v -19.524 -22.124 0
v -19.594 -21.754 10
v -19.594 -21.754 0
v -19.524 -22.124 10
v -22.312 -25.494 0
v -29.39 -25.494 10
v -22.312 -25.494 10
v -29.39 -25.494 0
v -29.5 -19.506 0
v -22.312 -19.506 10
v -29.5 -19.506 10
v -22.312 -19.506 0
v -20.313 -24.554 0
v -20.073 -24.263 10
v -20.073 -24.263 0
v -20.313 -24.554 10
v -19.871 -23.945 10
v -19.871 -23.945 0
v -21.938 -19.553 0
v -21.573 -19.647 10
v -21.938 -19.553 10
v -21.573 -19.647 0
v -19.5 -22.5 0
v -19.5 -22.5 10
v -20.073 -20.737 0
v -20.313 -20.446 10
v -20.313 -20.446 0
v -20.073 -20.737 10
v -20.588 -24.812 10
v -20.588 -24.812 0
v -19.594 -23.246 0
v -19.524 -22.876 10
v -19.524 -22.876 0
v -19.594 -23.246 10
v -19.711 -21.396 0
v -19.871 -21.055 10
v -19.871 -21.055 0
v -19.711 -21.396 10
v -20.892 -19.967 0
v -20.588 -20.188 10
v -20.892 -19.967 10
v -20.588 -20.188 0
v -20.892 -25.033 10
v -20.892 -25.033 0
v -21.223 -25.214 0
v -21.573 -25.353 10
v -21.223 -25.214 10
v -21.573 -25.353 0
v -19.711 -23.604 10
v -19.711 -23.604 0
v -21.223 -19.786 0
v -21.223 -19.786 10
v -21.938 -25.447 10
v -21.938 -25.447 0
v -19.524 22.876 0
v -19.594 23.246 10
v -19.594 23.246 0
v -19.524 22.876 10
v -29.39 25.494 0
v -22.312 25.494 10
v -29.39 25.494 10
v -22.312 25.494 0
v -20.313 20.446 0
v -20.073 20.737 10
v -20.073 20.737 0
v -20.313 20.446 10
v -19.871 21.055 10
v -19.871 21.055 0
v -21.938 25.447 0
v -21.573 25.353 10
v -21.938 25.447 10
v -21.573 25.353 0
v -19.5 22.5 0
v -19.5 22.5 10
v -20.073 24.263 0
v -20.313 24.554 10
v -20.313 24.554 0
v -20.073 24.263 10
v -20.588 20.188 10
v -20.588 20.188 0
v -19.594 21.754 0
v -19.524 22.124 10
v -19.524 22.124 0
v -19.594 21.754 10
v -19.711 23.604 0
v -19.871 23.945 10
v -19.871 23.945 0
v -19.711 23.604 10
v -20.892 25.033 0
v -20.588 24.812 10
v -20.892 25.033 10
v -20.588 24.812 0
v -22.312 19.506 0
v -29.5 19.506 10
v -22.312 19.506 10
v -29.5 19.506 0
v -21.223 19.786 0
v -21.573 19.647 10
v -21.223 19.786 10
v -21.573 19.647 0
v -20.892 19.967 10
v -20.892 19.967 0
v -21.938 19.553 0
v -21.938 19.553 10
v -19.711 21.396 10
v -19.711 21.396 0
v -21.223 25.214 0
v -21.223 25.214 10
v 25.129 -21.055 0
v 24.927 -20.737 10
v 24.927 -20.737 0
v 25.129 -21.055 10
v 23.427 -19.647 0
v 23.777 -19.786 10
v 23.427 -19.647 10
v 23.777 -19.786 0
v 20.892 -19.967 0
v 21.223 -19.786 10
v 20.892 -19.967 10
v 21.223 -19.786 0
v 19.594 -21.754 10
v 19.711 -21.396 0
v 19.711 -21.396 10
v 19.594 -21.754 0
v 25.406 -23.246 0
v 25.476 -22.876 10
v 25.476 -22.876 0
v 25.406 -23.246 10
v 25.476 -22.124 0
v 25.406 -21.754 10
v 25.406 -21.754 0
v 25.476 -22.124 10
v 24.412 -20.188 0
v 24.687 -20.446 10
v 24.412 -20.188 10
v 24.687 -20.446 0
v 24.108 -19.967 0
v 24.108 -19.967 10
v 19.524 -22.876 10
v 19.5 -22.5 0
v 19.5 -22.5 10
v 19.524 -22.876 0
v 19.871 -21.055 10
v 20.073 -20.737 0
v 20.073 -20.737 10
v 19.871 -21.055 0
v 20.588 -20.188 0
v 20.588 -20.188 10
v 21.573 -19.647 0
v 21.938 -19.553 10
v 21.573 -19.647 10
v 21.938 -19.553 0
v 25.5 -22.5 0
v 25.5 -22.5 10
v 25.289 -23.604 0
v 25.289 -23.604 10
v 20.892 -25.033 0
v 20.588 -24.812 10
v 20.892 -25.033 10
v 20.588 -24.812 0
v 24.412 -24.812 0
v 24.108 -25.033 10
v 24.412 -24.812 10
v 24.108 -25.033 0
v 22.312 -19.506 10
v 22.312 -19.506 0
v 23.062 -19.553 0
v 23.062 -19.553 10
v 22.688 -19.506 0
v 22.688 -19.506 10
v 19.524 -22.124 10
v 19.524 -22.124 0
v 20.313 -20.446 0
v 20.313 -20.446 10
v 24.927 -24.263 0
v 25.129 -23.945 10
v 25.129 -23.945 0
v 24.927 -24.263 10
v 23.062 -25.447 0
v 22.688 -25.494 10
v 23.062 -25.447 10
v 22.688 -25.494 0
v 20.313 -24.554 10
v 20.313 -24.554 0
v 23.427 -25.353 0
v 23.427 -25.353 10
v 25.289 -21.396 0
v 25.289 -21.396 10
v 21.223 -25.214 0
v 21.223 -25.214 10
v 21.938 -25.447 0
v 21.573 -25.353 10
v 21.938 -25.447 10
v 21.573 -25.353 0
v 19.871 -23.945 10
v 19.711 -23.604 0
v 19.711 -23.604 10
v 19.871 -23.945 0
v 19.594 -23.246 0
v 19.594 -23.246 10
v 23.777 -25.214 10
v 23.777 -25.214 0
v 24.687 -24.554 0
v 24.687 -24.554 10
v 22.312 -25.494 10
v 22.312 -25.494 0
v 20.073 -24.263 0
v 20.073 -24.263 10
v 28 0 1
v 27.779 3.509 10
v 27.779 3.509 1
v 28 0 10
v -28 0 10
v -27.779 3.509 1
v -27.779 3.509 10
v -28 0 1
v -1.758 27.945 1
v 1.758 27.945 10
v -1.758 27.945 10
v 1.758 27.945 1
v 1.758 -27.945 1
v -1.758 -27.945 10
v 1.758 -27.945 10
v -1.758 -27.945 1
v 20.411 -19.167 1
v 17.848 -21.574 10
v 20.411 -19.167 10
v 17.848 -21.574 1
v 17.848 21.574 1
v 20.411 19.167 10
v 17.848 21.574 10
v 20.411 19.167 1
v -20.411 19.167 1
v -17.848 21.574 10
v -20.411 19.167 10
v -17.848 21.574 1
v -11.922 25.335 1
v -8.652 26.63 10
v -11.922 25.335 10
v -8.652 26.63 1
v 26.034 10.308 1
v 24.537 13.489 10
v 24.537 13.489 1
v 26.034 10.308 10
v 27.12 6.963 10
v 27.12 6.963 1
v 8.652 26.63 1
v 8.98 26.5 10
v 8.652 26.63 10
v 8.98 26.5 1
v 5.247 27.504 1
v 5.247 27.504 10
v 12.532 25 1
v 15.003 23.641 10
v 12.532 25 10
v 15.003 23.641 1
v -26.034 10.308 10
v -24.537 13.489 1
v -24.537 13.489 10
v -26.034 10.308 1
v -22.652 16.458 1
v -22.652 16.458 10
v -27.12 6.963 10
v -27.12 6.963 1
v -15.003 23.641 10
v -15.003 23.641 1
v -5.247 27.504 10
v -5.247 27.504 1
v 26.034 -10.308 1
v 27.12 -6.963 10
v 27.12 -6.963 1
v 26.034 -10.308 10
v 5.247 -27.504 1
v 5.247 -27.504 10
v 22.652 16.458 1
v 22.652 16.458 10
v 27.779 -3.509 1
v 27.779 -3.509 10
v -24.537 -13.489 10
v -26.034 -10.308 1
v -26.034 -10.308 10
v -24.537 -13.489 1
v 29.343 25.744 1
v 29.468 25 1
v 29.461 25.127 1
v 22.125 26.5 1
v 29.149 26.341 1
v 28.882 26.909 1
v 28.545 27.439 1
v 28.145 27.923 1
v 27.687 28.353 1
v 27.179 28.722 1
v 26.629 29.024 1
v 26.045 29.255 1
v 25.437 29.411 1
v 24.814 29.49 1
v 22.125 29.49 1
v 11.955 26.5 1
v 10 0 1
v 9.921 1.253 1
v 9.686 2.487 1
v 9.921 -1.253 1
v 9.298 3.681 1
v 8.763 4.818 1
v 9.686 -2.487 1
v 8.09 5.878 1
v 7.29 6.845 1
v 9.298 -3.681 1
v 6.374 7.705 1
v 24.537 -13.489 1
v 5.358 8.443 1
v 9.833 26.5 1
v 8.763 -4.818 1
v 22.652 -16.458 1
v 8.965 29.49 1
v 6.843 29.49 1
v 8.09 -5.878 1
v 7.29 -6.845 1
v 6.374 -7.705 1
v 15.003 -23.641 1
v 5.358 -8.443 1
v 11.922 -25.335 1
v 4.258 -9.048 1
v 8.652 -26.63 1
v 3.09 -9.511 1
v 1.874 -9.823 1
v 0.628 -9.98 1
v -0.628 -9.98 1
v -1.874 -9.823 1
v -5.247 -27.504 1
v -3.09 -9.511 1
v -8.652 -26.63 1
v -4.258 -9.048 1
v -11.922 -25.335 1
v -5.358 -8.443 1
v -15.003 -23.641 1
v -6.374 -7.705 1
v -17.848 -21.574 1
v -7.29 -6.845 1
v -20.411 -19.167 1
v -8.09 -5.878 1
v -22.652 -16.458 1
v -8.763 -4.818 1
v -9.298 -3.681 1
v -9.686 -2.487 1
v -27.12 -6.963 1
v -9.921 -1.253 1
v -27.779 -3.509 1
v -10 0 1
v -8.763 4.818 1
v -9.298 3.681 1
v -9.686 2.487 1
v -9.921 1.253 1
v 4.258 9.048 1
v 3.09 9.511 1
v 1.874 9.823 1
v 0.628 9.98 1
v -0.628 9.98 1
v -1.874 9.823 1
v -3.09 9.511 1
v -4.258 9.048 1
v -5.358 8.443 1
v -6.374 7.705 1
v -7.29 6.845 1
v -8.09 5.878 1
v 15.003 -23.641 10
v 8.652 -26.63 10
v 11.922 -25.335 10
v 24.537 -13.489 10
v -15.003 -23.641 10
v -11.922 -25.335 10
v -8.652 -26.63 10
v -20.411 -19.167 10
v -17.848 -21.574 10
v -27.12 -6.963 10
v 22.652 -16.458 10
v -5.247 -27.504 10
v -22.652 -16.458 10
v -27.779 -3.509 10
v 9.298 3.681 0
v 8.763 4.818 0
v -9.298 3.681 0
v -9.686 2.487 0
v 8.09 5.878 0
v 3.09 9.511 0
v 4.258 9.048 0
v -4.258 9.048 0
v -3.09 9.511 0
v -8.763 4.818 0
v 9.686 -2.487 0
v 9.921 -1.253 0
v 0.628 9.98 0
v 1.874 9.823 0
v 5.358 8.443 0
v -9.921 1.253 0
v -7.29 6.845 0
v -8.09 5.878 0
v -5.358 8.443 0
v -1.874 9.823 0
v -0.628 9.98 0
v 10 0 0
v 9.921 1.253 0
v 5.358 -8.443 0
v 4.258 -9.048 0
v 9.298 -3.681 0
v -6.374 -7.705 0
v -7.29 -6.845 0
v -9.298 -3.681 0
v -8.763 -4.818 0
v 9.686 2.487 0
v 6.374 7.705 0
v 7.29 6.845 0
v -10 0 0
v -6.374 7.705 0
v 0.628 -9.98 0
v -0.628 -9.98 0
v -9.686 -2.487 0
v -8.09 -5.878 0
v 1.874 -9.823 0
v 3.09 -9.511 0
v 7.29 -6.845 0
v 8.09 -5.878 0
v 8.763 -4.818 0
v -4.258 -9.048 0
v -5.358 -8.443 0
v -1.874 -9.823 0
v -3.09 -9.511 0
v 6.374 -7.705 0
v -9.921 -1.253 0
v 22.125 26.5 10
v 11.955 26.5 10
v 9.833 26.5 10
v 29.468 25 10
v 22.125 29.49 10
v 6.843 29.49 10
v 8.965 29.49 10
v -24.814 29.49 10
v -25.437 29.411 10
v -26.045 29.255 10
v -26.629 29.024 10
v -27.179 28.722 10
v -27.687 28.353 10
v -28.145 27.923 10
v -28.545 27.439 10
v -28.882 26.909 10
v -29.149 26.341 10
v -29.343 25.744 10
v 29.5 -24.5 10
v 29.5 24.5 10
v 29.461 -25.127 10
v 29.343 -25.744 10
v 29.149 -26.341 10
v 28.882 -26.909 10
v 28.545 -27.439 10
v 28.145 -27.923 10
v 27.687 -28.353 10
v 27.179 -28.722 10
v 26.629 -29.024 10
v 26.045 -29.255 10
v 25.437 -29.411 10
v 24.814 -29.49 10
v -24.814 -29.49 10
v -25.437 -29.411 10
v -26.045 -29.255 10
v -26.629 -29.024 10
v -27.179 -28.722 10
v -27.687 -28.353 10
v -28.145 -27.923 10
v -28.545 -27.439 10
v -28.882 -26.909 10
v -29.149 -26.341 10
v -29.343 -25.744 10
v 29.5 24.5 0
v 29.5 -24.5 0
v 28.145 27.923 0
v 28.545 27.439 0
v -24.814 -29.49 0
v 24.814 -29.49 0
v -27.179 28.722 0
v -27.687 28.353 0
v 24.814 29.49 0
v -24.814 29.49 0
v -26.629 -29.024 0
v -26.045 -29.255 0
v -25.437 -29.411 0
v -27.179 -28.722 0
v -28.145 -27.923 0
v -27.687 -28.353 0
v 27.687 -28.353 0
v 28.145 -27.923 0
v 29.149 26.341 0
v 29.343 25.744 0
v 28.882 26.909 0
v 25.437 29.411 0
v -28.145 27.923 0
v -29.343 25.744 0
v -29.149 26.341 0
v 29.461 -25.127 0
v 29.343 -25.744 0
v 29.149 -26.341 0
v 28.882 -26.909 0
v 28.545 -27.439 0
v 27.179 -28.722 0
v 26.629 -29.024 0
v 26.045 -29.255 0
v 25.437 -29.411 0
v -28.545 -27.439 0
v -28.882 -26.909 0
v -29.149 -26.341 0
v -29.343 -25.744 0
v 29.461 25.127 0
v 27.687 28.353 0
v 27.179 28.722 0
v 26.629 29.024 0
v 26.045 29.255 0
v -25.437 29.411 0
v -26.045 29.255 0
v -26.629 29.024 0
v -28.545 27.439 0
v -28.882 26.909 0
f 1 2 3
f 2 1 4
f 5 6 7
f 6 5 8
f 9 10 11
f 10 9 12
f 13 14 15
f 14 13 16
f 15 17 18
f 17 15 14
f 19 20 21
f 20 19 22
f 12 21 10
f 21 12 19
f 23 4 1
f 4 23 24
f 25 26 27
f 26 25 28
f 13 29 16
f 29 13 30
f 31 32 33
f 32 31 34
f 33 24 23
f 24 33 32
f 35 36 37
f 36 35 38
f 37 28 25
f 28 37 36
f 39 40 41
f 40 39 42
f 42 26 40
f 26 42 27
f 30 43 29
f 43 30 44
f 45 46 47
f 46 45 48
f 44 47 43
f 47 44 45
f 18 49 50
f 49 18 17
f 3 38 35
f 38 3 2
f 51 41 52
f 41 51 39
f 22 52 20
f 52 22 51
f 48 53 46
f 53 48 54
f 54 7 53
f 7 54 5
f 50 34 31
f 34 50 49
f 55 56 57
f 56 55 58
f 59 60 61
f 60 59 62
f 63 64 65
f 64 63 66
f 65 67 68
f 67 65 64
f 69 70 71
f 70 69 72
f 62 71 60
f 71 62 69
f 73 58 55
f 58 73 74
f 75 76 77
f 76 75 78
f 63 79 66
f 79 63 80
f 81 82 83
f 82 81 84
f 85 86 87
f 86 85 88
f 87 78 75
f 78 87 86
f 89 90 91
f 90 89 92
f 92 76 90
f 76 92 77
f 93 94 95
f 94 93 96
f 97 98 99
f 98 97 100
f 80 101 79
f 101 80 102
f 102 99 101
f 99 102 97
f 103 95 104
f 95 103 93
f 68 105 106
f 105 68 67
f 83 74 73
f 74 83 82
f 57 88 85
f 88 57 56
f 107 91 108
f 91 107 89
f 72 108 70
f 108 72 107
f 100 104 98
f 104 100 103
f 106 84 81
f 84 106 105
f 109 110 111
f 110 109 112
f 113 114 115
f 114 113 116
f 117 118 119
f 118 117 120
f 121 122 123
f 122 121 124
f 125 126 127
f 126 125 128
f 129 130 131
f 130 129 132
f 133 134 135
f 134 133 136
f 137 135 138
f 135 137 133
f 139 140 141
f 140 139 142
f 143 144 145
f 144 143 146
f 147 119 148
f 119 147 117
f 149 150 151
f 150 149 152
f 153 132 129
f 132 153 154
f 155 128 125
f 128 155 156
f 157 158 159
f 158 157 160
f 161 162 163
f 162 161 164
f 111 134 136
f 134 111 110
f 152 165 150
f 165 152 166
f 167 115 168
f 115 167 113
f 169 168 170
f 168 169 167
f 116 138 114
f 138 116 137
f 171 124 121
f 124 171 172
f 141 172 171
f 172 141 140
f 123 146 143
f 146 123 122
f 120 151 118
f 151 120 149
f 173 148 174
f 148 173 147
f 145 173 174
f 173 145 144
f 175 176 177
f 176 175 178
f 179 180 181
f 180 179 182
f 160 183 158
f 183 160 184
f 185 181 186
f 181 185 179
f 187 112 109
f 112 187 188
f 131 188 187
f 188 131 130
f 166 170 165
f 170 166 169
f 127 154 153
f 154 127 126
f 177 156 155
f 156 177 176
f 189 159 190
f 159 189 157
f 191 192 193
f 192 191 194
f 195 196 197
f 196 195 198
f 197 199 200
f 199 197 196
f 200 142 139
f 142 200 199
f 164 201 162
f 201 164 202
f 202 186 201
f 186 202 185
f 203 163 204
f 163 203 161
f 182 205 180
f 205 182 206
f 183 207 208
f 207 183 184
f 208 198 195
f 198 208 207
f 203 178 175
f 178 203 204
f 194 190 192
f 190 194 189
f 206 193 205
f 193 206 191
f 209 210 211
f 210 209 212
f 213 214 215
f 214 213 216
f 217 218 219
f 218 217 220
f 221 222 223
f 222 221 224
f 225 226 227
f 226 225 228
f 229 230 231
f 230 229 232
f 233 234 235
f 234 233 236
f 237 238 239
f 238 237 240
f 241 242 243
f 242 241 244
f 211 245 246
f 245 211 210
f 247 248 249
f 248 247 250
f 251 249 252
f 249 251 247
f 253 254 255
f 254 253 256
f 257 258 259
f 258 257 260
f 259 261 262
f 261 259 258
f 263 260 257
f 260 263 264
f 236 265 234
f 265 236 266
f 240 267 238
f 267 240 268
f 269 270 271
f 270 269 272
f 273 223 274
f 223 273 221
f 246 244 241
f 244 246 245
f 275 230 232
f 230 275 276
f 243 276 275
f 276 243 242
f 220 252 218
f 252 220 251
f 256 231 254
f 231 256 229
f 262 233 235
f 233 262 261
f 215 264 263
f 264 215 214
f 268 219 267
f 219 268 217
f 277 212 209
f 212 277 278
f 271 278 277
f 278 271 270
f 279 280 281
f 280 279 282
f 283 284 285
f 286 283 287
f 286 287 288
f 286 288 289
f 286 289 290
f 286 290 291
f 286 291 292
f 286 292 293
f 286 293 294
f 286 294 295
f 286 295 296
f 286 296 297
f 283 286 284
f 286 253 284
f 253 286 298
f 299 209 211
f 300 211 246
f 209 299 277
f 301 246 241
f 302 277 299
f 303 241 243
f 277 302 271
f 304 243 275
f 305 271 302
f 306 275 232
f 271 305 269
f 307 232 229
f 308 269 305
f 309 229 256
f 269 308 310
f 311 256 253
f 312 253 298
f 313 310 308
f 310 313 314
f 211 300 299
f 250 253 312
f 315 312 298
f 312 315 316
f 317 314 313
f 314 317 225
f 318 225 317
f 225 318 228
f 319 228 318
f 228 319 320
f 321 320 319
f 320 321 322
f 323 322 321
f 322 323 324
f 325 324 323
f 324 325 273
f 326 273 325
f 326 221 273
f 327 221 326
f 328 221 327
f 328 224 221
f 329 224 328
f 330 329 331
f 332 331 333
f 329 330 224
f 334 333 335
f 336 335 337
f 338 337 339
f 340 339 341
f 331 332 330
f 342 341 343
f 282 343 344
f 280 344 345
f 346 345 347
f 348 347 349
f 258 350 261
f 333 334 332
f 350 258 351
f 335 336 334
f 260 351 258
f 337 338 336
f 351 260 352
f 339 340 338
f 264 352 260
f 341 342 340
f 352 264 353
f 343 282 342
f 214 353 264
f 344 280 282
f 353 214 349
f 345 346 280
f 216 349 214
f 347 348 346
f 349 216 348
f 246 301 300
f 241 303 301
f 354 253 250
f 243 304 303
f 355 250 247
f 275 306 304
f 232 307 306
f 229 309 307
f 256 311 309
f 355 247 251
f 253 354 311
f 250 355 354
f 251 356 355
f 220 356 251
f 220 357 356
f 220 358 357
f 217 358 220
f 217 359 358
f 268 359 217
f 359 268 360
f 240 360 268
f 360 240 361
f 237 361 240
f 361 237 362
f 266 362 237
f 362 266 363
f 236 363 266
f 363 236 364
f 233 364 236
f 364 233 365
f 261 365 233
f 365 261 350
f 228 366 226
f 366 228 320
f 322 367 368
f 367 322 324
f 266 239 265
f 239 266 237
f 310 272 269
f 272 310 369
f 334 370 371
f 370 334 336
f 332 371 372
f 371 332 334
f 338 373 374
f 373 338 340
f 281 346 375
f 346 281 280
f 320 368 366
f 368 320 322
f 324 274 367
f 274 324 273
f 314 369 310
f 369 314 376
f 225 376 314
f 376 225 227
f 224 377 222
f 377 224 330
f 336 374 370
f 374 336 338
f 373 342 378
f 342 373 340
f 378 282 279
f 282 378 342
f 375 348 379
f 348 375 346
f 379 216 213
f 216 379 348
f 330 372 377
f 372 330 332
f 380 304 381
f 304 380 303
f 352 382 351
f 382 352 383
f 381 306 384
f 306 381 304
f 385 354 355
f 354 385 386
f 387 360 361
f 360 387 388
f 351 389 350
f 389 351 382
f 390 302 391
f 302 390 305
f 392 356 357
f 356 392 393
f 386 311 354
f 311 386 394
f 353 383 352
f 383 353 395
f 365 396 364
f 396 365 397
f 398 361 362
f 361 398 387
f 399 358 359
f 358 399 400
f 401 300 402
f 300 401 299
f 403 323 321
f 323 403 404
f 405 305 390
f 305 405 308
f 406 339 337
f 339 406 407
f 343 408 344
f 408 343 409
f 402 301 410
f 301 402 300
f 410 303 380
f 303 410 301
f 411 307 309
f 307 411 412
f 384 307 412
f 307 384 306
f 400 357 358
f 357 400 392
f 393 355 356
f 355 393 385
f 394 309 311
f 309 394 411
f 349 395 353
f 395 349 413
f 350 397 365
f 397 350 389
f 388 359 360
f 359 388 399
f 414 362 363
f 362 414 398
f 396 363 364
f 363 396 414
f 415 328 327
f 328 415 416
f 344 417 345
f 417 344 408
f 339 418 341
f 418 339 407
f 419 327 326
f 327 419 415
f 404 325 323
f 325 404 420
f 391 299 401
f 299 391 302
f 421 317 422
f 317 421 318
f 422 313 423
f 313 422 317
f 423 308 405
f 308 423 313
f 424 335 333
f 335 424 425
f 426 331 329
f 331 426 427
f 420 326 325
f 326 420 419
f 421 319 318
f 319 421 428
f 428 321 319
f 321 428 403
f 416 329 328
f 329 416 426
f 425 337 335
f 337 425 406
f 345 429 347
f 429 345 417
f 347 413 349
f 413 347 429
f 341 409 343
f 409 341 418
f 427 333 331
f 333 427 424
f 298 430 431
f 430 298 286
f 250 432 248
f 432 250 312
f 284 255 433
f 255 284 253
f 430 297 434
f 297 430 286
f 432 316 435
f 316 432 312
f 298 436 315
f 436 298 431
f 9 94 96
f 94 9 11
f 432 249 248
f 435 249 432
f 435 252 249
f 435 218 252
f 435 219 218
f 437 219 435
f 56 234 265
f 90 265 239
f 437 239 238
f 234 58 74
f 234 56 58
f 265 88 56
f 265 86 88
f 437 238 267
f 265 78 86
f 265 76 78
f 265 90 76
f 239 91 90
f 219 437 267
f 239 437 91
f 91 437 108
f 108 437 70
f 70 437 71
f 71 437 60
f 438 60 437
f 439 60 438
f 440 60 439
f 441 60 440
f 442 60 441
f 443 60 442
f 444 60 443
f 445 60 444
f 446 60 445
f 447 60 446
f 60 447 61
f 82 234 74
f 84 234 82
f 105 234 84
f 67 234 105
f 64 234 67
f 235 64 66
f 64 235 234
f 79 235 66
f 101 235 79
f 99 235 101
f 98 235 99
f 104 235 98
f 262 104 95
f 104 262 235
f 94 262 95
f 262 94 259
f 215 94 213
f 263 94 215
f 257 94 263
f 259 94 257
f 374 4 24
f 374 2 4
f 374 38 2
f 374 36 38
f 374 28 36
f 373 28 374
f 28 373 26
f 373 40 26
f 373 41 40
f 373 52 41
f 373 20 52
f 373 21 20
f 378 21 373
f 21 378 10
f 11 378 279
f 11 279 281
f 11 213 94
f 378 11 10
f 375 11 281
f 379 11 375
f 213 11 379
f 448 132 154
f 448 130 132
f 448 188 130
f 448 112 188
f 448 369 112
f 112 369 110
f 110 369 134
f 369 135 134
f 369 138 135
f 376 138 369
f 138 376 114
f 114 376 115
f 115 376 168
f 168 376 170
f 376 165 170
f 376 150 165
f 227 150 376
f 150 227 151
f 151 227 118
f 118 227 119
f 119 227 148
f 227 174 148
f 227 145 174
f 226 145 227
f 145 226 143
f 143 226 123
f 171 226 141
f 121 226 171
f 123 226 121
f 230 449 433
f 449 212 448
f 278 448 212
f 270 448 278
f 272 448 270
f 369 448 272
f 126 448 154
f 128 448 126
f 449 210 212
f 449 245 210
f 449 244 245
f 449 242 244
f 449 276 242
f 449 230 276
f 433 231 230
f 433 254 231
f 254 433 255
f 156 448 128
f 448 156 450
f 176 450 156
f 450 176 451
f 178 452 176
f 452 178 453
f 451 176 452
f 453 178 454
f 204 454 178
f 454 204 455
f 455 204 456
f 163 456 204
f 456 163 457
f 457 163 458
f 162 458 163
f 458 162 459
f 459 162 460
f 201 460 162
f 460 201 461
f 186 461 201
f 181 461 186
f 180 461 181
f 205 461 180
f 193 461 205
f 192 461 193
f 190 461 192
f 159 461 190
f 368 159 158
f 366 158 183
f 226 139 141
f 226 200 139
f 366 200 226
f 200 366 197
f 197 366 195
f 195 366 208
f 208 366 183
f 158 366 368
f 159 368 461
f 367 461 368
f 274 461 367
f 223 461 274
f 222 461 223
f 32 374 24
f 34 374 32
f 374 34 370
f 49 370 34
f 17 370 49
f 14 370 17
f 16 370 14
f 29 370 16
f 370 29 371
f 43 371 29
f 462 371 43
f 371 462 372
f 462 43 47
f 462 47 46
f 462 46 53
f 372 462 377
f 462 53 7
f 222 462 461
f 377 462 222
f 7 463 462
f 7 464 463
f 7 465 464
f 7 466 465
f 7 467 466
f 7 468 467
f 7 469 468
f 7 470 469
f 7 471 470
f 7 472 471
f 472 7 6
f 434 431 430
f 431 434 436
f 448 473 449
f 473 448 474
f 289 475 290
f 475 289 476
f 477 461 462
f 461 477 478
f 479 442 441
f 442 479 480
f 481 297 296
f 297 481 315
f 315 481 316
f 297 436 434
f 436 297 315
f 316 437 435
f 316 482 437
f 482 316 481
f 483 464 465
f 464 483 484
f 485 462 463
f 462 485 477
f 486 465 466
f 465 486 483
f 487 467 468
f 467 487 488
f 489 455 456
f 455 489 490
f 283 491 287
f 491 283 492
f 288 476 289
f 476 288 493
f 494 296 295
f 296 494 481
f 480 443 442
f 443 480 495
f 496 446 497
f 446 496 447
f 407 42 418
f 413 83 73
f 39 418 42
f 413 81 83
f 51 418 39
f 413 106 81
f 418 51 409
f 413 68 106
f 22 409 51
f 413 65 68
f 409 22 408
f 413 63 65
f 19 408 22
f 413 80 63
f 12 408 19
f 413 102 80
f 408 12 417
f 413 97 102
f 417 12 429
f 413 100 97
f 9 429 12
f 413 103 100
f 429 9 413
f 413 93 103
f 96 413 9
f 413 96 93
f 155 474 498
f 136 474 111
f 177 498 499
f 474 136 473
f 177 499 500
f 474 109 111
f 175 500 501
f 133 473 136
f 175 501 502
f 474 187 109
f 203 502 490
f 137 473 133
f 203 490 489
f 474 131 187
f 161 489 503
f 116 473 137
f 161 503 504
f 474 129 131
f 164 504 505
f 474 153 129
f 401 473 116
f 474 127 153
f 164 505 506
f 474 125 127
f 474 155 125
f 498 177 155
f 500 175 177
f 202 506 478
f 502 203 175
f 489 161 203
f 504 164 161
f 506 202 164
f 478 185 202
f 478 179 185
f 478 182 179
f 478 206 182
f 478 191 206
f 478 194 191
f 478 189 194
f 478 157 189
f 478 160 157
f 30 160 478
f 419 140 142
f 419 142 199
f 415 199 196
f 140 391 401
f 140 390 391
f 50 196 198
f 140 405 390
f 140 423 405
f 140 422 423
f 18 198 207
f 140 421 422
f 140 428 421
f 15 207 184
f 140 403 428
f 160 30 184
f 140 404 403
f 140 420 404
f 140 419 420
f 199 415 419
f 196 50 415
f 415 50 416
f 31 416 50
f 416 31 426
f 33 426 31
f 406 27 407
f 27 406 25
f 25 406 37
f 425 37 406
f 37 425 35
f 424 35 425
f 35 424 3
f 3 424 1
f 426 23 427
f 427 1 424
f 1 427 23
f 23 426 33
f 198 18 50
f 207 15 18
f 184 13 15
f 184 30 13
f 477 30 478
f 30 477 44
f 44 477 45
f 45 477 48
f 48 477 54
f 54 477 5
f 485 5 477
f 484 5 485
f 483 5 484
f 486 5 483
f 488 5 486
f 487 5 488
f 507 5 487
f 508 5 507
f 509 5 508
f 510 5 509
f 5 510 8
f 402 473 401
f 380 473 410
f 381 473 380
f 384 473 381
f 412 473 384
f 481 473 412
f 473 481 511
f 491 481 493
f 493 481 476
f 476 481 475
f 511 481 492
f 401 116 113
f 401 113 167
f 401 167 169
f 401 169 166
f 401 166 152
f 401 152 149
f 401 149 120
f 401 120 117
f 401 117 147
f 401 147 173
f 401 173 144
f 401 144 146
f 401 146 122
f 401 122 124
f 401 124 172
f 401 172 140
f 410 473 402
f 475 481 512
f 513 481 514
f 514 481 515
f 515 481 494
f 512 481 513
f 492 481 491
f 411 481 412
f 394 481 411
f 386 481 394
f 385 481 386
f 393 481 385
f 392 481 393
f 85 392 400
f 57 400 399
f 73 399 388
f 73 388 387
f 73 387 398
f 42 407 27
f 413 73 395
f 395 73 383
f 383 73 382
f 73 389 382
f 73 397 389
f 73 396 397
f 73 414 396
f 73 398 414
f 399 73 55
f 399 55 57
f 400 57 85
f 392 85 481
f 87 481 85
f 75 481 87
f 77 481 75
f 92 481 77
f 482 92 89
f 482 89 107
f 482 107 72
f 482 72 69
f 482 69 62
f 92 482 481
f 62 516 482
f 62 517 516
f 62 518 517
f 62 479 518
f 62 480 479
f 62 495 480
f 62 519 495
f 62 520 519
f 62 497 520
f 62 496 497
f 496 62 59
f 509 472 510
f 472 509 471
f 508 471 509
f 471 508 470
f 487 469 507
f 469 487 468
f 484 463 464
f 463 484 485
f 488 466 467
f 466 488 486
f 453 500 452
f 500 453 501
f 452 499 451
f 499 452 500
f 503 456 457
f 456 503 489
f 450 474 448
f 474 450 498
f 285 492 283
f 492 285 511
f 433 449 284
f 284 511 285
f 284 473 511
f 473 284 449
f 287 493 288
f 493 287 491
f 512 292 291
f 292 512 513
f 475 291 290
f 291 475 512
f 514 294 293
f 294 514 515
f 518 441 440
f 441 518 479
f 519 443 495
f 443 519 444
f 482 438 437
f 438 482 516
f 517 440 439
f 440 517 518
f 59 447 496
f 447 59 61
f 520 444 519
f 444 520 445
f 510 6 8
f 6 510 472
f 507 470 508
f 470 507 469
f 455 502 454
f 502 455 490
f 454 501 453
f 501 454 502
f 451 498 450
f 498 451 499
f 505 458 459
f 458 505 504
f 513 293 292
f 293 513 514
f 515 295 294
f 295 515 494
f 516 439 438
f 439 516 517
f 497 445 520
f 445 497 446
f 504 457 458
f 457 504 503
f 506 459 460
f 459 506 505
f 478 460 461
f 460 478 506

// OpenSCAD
$fn = 50;


difference() {
	union() {
		translate(v = [0, 0, 0]) {
			rotate(a = [0, 0, 0]) {
				hull() {
					translate(v = [-24.5000000000, 24.5000000000, 0]) {
						rotate(a = [0, 0, 0]) {
							translate(v = [0, 0, 0]) {
								rotate(a = [0, 0, 0]) {
									cylinder(h = 10, r = 5);
								}
							}
						}
					}
					translate(v = [24.5000000000, 24.5000000000, 0]) {
						rotate(a = [0, 0, 0]) {
							translate(v = [0, 0, 0]) {
								rotate(a = [0, 0, 0]) {
									cylinder(h = 10, r = 5);
								}
							}
						}
					}
					translate(v = [-24.5000000000, -24.5000000000, 0]) {
						rotate(a = [0, 0, 0]) {
							translate(v = [0, 0, 0]) {
								rotate(a = [0, 0, 0]) {
									cylinder(h = 10, r = 5);
								}
							}
						}
					}
					translate(v = [24.5000000000, -24.5000000000, 0]) {
						rotate(a = [0, 0, 0]) {
							translate(v = [0, 0, 0]) {
								rotate(a = [0, 0, 0]) {
									cylinder(h = 10, r = 5);
								}
							}
						}
					}
				}
			}
		}
	}
	union() {
		translate(v = [-30.0000000000, -22.5000000000, -125]) {
			rotate(a = [0, 0, 0]) {
				hull() {
					translate(v = [7.5000000000, 0, 0]) {
						rotate(a = [0, 0, 0]) {
							translate(v = [0, 0, 0]) {
								rotate(a = [0, 0, 0]) {
									cylinder(h = 250, r = 3.0000000000);
								}
							}
						}
					}
					translate(v = [-7.5000000000, 0, 0]) {
						rotate(a = [0, 0, 0]) {
							translate(v = [0, 0, 0]) {
								rotate(a = [0, 0, 0]) {
									cylinder(h = 250, r = 3.0000000000);
								}
							}
						}
					}
				}
			}
		}
		translate(v = [-30.0000000000, 22.5000000000, -125]) {
			rotate(a = [0, 0, 0]) {
				hull() {
					translate(v = [7.5000000000, 0, 0]) {
						rotate(a = [0, 0, 0]) {
							translate(v = [0, 0, 0]) {
								rotate(a = [0, 0, 0]) {
									cylinder(h = 250, r = 3.0000000000);
								}
							}
						}
					}
					translate(v = [-7.5000000000, 0, 0]) {
						rotate(a = [0, 0, 0]) {
							translate(v = [0, 0, 0]) {
								rotate(a = [0, 0, 0]) {
									cylinder(h = 250, r = 3.0000000000);
								}
							}
						}
					}
				}
			}
		}
		translate(v = [22.5000000000, -22.5000000000, -125.0000000000]) {
			rotate(a = [0, 0, 0]) {
				cylinder(h = 250, r = 3.0000000000);
			}
		}
		translate(v = [0, 0, 1.0000000000]) {
			rotate(a = [0, 0, 0]) {
				cylinder(h = 12, r = 28.0000000000);
			}
		}
		translate(v = [0, 0, -5.0000000000]) {
			rotate(a = [0, 0, 0]) {
				cylinder(h = 10, r = 10.0000000000);
			}
		}
		translate(v = [0.0000000000, 25.0000000000, 1]) {
			rotate(a = [0, 0, 0]) {
				cube(size = [29.5000000000, 1.5000000000, 12]);
			}
		}
		translate(v = [22.1250000000, 25.0000000000, 1]) {
			rotate(a = [0, 0, 0]) {
				cube(size = [7.3750000000, 4.5000000000, 12]);
			}
		}
		translate(v = [6.0833333333, 30.2500000000, 1]) {
			rotate(a = [0, 0, -45]) {
				cube(size = [7.5000000000, 1.5000000000, 12]);
			}
		}
	}
}
